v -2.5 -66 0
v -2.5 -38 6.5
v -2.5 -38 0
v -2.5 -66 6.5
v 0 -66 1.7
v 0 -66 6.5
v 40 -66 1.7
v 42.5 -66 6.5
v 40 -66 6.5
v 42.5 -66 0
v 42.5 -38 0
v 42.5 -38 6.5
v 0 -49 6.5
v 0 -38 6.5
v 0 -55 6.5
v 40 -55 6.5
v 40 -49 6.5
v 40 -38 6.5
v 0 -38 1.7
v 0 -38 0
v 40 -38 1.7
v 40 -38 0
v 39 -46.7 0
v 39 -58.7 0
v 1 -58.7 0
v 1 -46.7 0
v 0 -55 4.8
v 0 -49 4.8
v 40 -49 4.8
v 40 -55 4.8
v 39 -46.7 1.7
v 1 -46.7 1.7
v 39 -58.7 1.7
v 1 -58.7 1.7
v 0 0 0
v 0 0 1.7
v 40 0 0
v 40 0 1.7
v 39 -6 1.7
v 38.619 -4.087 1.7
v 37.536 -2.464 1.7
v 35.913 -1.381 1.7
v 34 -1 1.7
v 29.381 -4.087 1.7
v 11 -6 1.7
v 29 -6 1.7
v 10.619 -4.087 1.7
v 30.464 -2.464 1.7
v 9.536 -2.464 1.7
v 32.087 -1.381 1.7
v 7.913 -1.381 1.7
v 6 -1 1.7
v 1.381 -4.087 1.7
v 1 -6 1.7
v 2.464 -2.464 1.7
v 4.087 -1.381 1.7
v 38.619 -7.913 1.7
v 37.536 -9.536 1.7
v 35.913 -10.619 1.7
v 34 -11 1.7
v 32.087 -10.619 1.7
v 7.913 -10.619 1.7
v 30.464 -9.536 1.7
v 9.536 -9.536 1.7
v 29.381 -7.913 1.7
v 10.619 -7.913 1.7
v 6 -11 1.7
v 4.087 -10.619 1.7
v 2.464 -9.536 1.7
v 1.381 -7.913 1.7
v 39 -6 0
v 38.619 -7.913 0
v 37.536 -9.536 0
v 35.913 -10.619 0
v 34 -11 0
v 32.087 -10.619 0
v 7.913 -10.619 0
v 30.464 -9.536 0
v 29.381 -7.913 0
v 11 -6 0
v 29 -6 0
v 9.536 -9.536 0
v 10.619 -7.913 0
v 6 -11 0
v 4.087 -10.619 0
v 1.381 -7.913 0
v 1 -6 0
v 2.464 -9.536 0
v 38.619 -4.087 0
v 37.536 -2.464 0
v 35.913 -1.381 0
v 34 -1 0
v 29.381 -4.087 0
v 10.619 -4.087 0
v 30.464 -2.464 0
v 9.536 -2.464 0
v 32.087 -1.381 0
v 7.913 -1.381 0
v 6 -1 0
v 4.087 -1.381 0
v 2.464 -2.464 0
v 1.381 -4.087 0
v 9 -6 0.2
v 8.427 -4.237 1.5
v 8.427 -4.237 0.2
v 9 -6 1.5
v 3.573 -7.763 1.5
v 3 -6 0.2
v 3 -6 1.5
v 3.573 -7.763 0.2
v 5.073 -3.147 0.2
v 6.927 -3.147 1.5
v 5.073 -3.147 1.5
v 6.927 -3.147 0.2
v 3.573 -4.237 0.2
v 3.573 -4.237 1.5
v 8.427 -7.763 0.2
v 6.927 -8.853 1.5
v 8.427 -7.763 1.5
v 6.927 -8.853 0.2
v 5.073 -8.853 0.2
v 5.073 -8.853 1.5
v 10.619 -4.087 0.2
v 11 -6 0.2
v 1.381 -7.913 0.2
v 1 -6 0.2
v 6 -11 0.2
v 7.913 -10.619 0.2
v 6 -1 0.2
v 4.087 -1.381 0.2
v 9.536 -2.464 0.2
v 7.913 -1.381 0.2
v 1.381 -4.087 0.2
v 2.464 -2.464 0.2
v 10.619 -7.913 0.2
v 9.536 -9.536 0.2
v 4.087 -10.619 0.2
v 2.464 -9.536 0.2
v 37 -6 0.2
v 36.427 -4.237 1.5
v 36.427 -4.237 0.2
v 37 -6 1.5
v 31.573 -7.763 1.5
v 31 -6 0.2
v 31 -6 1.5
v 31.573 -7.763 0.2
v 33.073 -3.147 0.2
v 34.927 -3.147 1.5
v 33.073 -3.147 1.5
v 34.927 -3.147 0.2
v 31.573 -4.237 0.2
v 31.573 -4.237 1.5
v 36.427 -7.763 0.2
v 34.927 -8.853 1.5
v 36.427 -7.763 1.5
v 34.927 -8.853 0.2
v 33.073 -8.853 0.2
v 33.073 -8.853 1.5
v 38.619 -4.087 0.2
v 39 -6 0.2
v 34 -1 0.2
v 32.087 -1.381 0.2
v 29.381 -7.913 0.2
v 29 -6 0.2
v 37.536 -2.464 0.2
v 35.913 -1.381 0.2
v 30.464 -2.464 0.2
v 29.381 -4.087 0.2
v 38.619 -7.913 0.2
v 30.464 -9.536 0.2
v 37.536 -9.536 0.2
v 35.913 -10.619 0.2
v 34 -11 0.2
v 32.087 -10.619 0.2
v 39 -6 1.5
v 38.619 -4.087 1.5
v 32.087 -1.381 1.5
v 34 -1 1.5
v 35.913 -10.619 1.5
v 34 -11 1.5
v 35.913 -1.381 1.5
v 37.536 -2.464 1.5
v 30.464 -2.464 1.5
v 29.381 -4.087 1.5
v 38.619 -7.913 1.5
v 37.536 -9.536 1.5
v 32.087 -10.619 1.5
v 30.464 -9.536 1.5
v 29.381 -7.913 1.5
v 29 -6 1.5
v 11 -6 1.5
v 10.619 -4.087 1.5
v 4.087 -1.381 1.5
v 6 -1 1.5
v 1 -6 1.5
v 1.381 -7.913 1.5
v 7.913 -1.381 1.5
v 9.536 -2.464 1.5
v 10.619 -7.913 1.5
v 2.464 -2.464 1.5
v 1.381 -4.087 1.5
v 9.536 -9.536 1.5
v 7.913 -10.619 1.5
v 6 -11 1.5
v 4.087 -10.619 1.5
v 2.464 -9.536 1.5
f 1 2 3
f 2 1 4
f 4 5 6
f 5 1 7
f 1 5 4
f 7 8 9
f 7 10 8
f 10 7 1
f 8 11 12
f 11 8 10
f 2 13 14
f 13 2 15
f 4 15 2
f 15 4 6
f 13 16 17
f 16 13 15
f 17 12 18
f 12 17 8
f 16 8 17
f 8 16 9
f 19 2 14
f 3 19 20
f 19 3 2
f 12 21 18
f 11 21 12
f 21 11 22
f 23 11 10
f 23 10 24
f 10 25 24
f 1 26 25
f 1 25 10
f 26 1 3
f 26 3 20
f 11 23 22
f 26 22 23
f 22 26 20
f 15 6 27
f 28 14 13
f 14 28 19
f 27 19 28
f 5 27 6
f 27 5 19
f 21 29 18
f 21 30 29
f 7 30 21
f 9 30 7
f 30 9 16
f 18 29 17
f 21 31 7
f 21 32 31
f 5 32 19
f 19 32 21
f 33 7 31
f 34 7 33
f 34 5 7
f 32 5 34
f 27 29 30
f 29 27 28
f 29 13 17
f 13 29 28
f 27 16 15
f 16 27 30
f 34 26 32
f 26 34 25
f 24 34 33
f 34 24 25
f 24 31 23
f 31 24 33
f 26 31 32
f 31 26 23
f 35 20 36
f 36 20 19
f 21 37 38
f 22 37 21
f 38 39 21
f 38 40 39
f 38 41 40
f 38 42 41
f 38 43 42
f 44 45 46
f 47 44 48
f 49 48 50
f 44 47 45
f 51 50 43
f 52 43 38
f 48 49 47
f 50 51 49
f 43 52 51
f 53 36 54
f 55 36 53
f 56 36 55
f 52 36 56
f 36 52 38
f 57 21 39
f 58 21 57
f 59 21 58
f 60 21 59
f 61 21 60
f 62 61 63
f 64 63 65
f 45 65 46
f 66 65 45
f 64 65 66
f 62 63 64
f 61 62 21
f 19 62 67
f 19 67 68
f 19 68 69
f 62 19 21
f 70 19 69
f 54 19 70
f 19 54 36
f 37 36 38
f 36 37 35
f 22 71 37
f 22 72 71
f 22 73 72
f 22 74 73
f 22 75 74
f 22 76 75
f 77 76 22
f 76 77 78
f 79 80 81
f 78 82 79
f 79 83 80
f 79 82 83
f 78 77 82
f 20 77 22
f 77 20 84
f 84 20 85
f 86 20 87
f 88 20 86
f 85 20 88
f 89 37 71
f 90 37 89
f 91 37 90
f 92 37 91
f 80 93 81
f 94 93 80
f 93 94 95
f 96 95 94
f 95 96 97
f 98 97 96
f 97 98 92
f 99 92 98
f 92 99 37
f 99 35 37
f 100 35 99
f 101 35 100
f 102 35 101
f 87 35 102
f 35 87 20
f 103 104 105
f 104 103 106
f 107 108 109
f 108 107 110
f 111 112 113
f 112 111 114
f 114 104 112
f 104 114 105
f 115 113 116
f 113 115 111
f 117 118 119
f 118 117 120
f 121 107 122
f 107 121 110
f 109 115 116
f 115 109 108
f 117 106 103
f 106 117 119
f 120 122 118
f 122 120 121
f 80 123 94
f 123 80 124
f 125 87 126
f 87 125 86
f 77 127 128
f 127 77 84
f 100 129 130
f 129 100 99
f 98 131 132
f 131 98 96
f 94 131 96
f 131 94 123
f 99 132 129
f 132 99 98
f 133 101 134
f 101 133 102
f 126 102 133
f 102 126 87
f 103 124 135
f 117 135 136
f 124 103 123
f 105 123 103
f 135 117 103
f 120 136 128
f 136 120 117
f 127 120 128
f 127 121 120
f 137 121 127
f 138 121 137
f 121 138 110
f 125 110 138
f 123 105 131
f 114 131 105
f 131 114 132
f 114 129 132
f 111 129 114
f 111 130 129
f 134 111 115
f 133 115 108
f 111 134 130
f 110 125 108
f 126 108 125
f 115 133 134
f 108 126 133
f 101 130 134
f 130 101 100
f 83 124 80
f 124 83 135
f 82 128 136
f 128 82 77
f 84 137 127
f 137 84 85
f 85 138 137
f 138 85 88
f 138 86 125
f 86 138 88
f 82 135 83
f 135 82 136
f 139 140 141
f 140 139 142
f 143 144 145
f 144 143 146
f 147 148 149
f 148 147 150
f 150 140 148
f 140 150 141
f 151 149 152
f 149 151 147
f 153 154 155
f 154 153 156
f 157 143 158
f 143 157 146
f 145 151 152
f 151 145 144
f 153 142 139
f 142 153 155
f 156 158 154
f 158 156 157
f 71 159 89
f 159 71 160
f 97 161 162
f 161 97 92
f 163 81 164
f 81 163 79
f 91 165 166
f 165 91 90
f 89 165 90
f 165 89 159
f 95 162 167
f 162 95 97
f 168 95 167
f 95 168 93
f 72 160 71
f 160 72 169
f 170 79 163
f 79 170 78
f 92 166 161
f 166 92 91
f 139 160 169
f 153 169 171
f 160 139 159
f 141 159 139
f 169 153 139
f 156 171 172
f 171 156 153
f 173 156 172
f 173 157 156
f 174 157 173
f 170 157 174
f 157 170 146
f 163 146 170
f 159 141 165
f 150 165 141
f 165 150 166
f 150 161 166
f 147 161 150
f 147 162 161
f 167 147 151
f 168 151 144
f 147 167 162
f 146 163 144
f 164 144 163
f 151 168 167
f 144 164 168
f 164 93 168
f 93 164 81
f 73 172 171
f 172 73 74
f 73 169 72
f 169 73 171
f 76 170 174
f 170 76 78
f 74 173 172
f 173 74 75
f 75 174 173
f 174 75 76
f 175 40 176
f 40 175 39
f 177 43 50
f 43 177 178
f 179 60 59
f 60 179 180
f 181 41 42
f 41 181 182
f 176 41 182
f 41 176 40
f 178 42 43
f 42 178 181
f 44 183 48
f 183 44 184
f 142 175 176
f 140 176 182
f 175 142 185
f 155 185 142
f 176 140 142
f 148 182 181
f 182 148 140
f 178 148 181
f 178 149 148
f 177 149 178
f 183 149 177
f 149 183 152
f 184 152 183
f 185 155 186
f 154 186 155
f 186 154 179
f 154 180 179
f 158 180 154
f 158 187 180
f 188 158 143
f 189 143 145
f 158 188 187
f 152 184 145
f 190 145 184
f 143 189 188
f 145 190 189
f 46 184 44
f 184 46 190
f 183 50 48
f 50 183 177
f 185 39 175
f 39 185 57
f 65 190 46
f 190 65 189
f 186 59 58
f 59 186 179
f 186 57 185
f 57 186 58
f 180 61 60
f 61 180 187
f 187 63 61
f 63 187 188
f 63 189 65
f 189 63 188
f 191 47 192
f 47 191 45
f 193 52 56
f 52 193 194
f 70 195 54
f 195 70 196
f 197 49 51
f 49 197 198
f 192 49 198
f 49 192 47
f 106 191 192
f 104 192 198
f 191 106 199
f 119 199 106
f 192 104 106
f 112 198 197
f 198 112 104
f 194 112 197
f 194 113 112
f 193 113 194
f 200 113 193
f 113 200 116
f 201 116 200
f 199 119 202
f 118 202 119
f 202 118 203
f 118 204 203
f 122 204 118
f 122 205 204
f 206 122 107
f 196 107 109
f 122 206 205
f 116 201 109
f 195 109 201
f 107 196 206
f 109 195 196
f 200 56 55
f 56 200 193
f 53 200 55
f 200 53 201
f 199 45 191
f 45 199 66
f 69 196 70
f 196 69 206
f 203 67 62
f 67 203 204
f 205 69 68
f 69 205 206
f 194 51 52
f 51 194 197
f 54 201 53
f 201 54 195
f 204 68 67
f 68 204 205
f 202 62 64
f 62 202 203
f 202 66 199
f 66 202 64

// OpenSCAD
difference(){rotate([90,0,0])
    cube([40,1.7,38]);
    //Body of Slice
rotate([0,0,0])translate([6,-6,0])cylinder(r=3,h=3);
//hole double cap rivet left
rotate([0,0,0])translate([6,-6,0])cylinder(r=5,h=0.2);
//pocket bottom left
rotate([0,0,0])translate([34,-6,0])cylinder(r=3,h=3);
//hole double cap rivet right
rotate([0,0,0])translate([34,-6,0])cylinder(r=5,h=0.2);
//pocket bottom right
rotate([0,0,0])translate([34,-6,1.5])cylinder(r=5,h=0.2);
//pocket top right
rotate([0,0,0])translate([6,-6,1.5])cylinder(r=5,h=0.2);
//pocket top left
    }
rotate([90,0,0])difference(){
translate([-2.5,0,38])cube([45,6.5,28]);
translate([0,1.7,38])cube([40,3.1,28]);
translate([0,4.8,38])cube([40,6,11]);
translate([0,4.8,55])cube([40,6,11]); 
translate([1,-1.7,46.7])cube([38,6,12]);
}//the part of slice that support the belt 
